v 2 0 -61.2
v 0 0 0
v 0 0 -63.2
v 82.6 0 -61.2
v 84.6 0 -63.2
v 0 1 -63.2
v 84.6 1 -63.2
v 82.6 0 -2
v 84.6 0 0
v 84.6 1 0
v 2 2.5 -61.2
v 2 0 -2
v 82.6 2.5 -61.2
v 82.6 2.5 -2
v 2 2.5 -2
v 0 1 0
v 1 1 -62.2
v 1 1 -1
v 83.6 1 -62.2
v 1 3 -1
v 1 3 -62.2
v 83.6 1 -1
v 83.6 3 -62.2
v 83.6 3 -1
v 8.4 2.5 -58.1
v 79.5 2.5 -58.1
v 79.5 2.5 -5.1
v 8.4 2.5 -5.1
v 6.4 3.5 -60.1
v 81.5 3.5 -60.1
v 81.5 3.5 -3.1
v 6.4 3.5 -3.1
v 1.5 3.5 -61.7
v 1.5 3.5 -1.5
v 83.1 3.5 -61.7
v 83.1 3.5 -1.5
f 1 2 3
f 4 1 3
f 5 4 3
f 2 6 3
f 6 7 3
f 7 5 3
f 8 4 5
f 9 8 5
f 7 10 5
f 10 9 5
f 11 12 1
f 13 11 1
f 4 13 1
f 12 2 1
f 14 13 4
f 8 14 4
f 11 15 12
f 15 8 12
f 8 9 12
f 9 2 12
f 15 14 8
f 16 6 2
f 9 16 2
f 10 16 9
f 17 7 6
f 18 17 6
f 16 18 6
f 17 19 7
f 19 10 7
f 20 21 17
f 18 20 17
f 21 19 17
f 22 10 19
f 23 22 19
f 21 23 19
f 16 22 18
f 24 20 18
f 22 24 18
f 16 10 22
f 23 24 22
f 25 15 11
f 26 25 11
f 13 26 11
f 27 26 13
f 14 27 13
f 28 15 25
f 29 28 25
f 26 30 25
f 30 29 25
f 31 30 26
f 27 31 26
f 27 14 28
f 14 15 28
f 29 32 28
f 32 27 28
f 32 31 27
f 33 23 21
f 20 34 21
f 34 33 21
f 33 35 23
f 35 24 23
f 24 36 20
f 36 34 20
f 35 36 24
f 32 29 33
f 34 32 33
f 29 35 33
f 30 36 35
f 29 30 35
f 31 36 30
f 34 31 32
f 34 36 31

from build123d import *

# Parameters (mm, degrees)
SKETCH1_W           = 84.6
SKETCH1_H           = 63.2
SKETCH1_W_2         = 80.6
SKETCH1_H_2         = 59.2
BOSS_EXTRUDE1_DEPTH = 1
SKETCH2_W           = 82.6
SKETCH2_H           = 61.2
SKETCH2_W_2         = 80.6
SKETCH2_H_2         = 59.2
BOSS_EXTRUDE2_DEPTH = 2.5
SKETCH3_W           = 82.6
SKETCH3_H           = 61.2
SKETCH3_W_2         = 71.1
SKETCH3_H_2         = 53
BOSS_EXTRUDE3_DEPTH = 1
CHAMFER1_SIZE       = 2
CHAMFER1_SIZE_2     = 1
CHAMFER2_SIZE       = 0.5


with BuildPart() as part:
    # Sketch1 → Boss-Extrude1 (new body)
    with BuildSketch(Plane(origin=(0, 0, 0), x_dir=(1, 0, 0), z_dir=(0, 1, 0))):
        with Locations((42.3, 31.6)):
            Rectangle(SKETCH1_W, SKETCH1_H)
        with Locations((42.3, 31.6)):
            Rectangle(SKETCH1_W_2, SKETCH1_H_2, mode=Mode.SUBTRACT)
    extrude(amount=BOSS_EXTRUDE1_DEPTH)

    # Sketch2 → Boss-Extrude2 (add)
    with BuildSketch(Plane(origin=(0, 1, 0), x_dir=(1, 0, 0), z_dir=(0, 1, 0))):
        with Locations((42.3, 31.6)):
            Rectangle(SKETCH2_W, SKETCH2_H)
        with Locations((42.3, 31.6)):
            Rectangle(SKETCH2_W_2, SKETCH2_H_2, mode=Mode.SUBTRACT)
    extrude(amount=BOSS_EXTRUDE2_DEPTH)

    # Sketch3 → Boss-Extrude3 (add)
    with BuildSketch(Plane(origin=(0, 3.5, 0), x_dir=(1, 0, 0), z_dir=(0, 1, 0))):
        with Locations((42.3, 31.6)):
            Rectangle(SKETCH3_W, SKETCH3_H)
        with Locations((43.95, 31.6)):
            Rectangle(SKETCH3_W_2, SKETCH3_H_2, mode=Mode.SUBTRACT)
    extrude(amount=-BOSS_EXTRUDE3_DEPTH)

    # Chamfer1
    # the kernel refuses this chamfer: 2, 1 mm, written as the material it takes off along each edge
    with BuildSketch(Plane(origin=(79.5, 3.5, -58.1), x_dir=(0.9998508956747119, 0.01726807512366803, 0), z_dir=(0, 0, 1)), Plane(origin=(8.4, 3.5, -5.1), x_dir=(-0.9998508956747119, 0.01726807512366807, 0), z_dir=(0, 0, -1))) as chamfer1_piece_1:
        Polygon((CHAMFER1_SIZE * 0.999850895675, -CHAMFER1_SIZE * 0.0172680751237), (-CHAMFER1_SIZE_2 * 0.0172680751237, -CHAMFER1_SIZE_2 * 0.999850895675), (0, 0), align=None)
    extrude(amount=53, mode=Mode.SUBTRACT)
    with BuildSketch(Plane(origin=(79.5, 3.5, -5.1), x_dir=(0, 0.017268075123668084, 0.9998508956747119), z_dir=(-1, 0, 0)), Plane(origin=(8.4, 3.5, -58.1), x_dir=(0, 0.017268075123668087, -0.9998508956747116), z_dir=(1, 0, 0))) as chamfer1_piece_2:
        Polygon((CHAMFER1_SIZE * 0.999850895675, -CHAMFER1_SIZE * 0.0172680751237), (-CHAMFER1_SIZE_2 * 0.0172680751237, -CHAMFER1_SIZE_2 * 0.999850895675), (0, 0), align=None)
    extrude(amount=71.1, mode=Mode.SUBTRACT)
    with BuildSketch(Plane(origin=(8.4, 3.5, -58.1), x_dir=(0, 0.017268075123668087, -0.9998508956747116), z_dir=(1, 0, 0))) as chamfer1_piece_3a_section:
        Polygon((CHAMFER1_SIZE * 0.999850895675, -CHAMFER1_SIZE * 0.0172680751237), (-CHAMFER1_SIZE_2 * 0.0172680751237, -CHAMFER1_SIZE_2 * 0.999850895675), (0, 0), align=None)
    chamfer1_piece_3a = extrude(amount=76.279657748, mode=Mode.PRIVATE)
    chamfer1_piece_3a = split(chamfer1_piece_3a, bisect_by=Plane(origin=(79.5, 3.182784452, -58.774507016), z_dir=(1, 0, 0)), keep=Keep.TOP, mode=Mode.PRIVATE)
    with BuildSketch(Plane(origin=(79.5, 3.5, -63.279657748), x_dir=(0.9998508956747119, 0.01726807512366803, 0), z_dir=(0, 0, 1))) as chamfer1_piece_3b_section:
        Polygon((CHAMFER1_SIZE * 0.999850895675, -CHAMFER1_SIZE * 0.0172680751237), (-CHAMFER1_SIZE_2 * 0.0172680751237, -CHAMFER1_SIZE_2 * 0.999850895675), (0, 0), align=None)
    chamfer1_piece_3b = extrude(amount=58.179657748, mode=Mode.PRIVATE)
    chamfer1_piece_3b = split(chamfer1_piece_3b, bisect_by=Plane(origin=(80.174507016, 3.182784452, -58.1), z_dir=(0, 0, -1)), keep=Keep.TOP, mode=Mode.PRIVATE)
    chamfer1_piece_3 = chamfer1_piece_3a & chamfer1_piece_3b
    add(chamfer1_piece_3, mode=Mode.SUBTRACT)
    with BuildSketch(Plane(origin=(84.679657748, 3.5, -5.1), x_dir=(0, 0.017268075123668084, 0.9998508956747119), z_dir=(-1, 0, 0))) as chamfer1_piece_4a_section:
        Polygon((CHAMFER1_SIZE * 0.999850895675, -CHAMFER1_SIZE * 0.0172680751237), (-CHAMFER1_SIZE_2 * 0.0172680751237, -CHAMFER1_SIZE_2 * 0.999850895675), (0, 0), align=None)
    chamfer1_piece_4a = extrude(amount=76.279657748, mode=Mode.PRIVATE)
    chamfer1_piece_4a = split(chamfer1_piece_4a, bisect_by=Plane(origin=(79.5, 3.182784452, -4.425492984), z_dir=(1, 0, 0)), keep=Keep.TOP, mode=Mode.PRIVATE)
    with BuildSketch(Plane(origin=(79.5, 3.5, -58.1), x_dir=(0.9998508956747119, 0.01726807512366803, 0), z_dir=(0, 0, 1))) as chamfer1_piece_4b_section:
        Polygon((CHAMFER1_SIZE * 0.999850895675, -CHAMFER1_SIZE * 0.0172680751237), (-CHAMFER1_SIZE_2 * 0.0172680751237, -CHAMFER1_SIZE_2 * 0.999850895675), (0, 0), align=None)
    chamfer1_piece_4b = extrude(amount=58.179657748, mode=Mode.PRIVATE)
    chamfer1_piece_4b = split(chamfer1_piece_4b, bisect_by=Plane(origin=(80.174507016, 3.182784452, -5.1), z_dir=(0, 0, 1)), keep=Keep.TOP, mode=Mode.PRIVATE)
    chamfer1_piece_4 = chamfer1_piece_4a & chamfer1_piece_4b
    add(chamfer1_piece_4, mode=Mode.SUBTRACT)
    with BuildSketch(Plane(origin=(8.4, 3.5, 0.079657748), x_dir=(-0.9998508956747119, 0.017268075123668084, 0), z_dir=(0, 0, -1))) as chamfer1_piece_5a_section:
        Polygon((CHAMFER1_SIZE * 0.999850895675, -CHAMFER1_SIZE * 0.0172680751237), (-CHAMFER1_SIZE_2 * 0.0172680751237, -CHAMFER1_SIZE_2 * 0.999850895675), (0, 0), align=None)
    chamfer1_piece_5a = extrude(amount=58.179657748, mode=Mode.PRIVATE)
    chamfer1_piece_5a = split(chamfer1_piece_5a, bisect_by=Plane(origin=(7.725492984, 3.182784452, -5.1), z_dir=(0, 0, 1)), keep=Keep.TOP, mode=Mode.PRIVATE)
    with BuildSketch(Plane(origin=(79.5, 3.5, -5.1), x_dir=(0, 0.017268075123668084, 0.9998508956747119), z_dir=(-1, 0, 0))) as chamfer1_piece_5b_section:
        Polygon((CHAMFER1_SIZE * 0.999850895675, -CHAMFER1_SIZE * 0.0172680751237), (-CHAMFER1_SIZE_2 * 0.0172680751237, -CHAMFER1_SIZE_2 * 0.999850895675), (0, 0), align=None)
    chamfer1_piece_5b = extrude(amount=76.279657748, mode=Mode.PRIVATE)
    chamfer1_piece_5b = split(chamfer1_piece_5b, bisect_by=Plane(origin=(8.4, 3.182784452, -4.425492984), z_dir=(-1, 0, 0)), keep=Keep.TOP, mode=Mode.PRIVATE)
    chamfer1_piece_5 = chamfer1_piece_5a & chamfer1_piece_5b
    add(chamfer1_piece_5, mode=Mode.SUBTRACT)
    with BuildSketch(Plane(origin=(3.220342252, 3.5, -58.1), x_dir=(0, 0.017268075123668087, -0.9998508956747116), z_dir=(1, 0, 0))) as chamfer1_piece_6a_section:
        Polygon((CHAMFER1_SIZE * 0.999850895675, -CHAMFER1_SIZE * 0.0172680751237), (-CHAMFER1_SIZE_2 * 0.0172680751237, -CHAMFER1_SIZE_2 * 0.999850895675), (0, 0), align=None)
    chamfer1_piece_6a = extrude(amount=76.279657748, mode=Mode.PRIVATE)
    chamfer1_piece_6a = split(chamfer1_piece_6a, bisect_by=Plane(origin=(8.4, 3.182784452, -58.774507016), z_dir=(-1, 0, 0)), keep=Keep.TOP, mode=Mode.PRIVATE)
    with BuildSketch(Plane(origin=(8.4, 3.5, -5.1), x_dir=(-0.9998508956747119, 0.01726807512366807, 0), z_dir=(0, 0, -1))) as chamfer1_piece_6b_section:
        Polygon((CHAMFER1_SIZE * 0.999850895675, -CHAMFER1_SIZE * 0.0172680751237), (-CHAMFER1_SIZE_2 * 0.0172680751237, -CHAMFER1_SIZE_2 * 0.999850895675), (0, 0), align=None)
    chamfer1_piece_6b = extrude(amount=58.179657748, mode=Mode.PRIVATE)
    chamfer1_piece_6b = split(chamfer1_piece_6b, bisect_by=Plane(origin=(7.725492984, 3.182784452, -58.1), z_dir=(0, 0, -1)), keep=Keep.TOP, mode=Mode.PRIVATE)
    chamfer1_piece_6 = chamfer1_piece_6a & chamfer1_piece_6b
    add(chamfer1_piece_6, mode=Mode.SUBTRACT)

    # Chamfer2
    chamfer2_edges = [part.edges().sort_by_distance(p)[0] for p in [
        (1, 3.5, -31.6),
        (42.3, 3.5, -1),
        (83.6, 3.5, -31.6),
        (42.3, 3.5, -62.2),
    ]]
    chamfer(chamfer2_edges, length=CHAMFER2_SIZE)


solid = part.part
